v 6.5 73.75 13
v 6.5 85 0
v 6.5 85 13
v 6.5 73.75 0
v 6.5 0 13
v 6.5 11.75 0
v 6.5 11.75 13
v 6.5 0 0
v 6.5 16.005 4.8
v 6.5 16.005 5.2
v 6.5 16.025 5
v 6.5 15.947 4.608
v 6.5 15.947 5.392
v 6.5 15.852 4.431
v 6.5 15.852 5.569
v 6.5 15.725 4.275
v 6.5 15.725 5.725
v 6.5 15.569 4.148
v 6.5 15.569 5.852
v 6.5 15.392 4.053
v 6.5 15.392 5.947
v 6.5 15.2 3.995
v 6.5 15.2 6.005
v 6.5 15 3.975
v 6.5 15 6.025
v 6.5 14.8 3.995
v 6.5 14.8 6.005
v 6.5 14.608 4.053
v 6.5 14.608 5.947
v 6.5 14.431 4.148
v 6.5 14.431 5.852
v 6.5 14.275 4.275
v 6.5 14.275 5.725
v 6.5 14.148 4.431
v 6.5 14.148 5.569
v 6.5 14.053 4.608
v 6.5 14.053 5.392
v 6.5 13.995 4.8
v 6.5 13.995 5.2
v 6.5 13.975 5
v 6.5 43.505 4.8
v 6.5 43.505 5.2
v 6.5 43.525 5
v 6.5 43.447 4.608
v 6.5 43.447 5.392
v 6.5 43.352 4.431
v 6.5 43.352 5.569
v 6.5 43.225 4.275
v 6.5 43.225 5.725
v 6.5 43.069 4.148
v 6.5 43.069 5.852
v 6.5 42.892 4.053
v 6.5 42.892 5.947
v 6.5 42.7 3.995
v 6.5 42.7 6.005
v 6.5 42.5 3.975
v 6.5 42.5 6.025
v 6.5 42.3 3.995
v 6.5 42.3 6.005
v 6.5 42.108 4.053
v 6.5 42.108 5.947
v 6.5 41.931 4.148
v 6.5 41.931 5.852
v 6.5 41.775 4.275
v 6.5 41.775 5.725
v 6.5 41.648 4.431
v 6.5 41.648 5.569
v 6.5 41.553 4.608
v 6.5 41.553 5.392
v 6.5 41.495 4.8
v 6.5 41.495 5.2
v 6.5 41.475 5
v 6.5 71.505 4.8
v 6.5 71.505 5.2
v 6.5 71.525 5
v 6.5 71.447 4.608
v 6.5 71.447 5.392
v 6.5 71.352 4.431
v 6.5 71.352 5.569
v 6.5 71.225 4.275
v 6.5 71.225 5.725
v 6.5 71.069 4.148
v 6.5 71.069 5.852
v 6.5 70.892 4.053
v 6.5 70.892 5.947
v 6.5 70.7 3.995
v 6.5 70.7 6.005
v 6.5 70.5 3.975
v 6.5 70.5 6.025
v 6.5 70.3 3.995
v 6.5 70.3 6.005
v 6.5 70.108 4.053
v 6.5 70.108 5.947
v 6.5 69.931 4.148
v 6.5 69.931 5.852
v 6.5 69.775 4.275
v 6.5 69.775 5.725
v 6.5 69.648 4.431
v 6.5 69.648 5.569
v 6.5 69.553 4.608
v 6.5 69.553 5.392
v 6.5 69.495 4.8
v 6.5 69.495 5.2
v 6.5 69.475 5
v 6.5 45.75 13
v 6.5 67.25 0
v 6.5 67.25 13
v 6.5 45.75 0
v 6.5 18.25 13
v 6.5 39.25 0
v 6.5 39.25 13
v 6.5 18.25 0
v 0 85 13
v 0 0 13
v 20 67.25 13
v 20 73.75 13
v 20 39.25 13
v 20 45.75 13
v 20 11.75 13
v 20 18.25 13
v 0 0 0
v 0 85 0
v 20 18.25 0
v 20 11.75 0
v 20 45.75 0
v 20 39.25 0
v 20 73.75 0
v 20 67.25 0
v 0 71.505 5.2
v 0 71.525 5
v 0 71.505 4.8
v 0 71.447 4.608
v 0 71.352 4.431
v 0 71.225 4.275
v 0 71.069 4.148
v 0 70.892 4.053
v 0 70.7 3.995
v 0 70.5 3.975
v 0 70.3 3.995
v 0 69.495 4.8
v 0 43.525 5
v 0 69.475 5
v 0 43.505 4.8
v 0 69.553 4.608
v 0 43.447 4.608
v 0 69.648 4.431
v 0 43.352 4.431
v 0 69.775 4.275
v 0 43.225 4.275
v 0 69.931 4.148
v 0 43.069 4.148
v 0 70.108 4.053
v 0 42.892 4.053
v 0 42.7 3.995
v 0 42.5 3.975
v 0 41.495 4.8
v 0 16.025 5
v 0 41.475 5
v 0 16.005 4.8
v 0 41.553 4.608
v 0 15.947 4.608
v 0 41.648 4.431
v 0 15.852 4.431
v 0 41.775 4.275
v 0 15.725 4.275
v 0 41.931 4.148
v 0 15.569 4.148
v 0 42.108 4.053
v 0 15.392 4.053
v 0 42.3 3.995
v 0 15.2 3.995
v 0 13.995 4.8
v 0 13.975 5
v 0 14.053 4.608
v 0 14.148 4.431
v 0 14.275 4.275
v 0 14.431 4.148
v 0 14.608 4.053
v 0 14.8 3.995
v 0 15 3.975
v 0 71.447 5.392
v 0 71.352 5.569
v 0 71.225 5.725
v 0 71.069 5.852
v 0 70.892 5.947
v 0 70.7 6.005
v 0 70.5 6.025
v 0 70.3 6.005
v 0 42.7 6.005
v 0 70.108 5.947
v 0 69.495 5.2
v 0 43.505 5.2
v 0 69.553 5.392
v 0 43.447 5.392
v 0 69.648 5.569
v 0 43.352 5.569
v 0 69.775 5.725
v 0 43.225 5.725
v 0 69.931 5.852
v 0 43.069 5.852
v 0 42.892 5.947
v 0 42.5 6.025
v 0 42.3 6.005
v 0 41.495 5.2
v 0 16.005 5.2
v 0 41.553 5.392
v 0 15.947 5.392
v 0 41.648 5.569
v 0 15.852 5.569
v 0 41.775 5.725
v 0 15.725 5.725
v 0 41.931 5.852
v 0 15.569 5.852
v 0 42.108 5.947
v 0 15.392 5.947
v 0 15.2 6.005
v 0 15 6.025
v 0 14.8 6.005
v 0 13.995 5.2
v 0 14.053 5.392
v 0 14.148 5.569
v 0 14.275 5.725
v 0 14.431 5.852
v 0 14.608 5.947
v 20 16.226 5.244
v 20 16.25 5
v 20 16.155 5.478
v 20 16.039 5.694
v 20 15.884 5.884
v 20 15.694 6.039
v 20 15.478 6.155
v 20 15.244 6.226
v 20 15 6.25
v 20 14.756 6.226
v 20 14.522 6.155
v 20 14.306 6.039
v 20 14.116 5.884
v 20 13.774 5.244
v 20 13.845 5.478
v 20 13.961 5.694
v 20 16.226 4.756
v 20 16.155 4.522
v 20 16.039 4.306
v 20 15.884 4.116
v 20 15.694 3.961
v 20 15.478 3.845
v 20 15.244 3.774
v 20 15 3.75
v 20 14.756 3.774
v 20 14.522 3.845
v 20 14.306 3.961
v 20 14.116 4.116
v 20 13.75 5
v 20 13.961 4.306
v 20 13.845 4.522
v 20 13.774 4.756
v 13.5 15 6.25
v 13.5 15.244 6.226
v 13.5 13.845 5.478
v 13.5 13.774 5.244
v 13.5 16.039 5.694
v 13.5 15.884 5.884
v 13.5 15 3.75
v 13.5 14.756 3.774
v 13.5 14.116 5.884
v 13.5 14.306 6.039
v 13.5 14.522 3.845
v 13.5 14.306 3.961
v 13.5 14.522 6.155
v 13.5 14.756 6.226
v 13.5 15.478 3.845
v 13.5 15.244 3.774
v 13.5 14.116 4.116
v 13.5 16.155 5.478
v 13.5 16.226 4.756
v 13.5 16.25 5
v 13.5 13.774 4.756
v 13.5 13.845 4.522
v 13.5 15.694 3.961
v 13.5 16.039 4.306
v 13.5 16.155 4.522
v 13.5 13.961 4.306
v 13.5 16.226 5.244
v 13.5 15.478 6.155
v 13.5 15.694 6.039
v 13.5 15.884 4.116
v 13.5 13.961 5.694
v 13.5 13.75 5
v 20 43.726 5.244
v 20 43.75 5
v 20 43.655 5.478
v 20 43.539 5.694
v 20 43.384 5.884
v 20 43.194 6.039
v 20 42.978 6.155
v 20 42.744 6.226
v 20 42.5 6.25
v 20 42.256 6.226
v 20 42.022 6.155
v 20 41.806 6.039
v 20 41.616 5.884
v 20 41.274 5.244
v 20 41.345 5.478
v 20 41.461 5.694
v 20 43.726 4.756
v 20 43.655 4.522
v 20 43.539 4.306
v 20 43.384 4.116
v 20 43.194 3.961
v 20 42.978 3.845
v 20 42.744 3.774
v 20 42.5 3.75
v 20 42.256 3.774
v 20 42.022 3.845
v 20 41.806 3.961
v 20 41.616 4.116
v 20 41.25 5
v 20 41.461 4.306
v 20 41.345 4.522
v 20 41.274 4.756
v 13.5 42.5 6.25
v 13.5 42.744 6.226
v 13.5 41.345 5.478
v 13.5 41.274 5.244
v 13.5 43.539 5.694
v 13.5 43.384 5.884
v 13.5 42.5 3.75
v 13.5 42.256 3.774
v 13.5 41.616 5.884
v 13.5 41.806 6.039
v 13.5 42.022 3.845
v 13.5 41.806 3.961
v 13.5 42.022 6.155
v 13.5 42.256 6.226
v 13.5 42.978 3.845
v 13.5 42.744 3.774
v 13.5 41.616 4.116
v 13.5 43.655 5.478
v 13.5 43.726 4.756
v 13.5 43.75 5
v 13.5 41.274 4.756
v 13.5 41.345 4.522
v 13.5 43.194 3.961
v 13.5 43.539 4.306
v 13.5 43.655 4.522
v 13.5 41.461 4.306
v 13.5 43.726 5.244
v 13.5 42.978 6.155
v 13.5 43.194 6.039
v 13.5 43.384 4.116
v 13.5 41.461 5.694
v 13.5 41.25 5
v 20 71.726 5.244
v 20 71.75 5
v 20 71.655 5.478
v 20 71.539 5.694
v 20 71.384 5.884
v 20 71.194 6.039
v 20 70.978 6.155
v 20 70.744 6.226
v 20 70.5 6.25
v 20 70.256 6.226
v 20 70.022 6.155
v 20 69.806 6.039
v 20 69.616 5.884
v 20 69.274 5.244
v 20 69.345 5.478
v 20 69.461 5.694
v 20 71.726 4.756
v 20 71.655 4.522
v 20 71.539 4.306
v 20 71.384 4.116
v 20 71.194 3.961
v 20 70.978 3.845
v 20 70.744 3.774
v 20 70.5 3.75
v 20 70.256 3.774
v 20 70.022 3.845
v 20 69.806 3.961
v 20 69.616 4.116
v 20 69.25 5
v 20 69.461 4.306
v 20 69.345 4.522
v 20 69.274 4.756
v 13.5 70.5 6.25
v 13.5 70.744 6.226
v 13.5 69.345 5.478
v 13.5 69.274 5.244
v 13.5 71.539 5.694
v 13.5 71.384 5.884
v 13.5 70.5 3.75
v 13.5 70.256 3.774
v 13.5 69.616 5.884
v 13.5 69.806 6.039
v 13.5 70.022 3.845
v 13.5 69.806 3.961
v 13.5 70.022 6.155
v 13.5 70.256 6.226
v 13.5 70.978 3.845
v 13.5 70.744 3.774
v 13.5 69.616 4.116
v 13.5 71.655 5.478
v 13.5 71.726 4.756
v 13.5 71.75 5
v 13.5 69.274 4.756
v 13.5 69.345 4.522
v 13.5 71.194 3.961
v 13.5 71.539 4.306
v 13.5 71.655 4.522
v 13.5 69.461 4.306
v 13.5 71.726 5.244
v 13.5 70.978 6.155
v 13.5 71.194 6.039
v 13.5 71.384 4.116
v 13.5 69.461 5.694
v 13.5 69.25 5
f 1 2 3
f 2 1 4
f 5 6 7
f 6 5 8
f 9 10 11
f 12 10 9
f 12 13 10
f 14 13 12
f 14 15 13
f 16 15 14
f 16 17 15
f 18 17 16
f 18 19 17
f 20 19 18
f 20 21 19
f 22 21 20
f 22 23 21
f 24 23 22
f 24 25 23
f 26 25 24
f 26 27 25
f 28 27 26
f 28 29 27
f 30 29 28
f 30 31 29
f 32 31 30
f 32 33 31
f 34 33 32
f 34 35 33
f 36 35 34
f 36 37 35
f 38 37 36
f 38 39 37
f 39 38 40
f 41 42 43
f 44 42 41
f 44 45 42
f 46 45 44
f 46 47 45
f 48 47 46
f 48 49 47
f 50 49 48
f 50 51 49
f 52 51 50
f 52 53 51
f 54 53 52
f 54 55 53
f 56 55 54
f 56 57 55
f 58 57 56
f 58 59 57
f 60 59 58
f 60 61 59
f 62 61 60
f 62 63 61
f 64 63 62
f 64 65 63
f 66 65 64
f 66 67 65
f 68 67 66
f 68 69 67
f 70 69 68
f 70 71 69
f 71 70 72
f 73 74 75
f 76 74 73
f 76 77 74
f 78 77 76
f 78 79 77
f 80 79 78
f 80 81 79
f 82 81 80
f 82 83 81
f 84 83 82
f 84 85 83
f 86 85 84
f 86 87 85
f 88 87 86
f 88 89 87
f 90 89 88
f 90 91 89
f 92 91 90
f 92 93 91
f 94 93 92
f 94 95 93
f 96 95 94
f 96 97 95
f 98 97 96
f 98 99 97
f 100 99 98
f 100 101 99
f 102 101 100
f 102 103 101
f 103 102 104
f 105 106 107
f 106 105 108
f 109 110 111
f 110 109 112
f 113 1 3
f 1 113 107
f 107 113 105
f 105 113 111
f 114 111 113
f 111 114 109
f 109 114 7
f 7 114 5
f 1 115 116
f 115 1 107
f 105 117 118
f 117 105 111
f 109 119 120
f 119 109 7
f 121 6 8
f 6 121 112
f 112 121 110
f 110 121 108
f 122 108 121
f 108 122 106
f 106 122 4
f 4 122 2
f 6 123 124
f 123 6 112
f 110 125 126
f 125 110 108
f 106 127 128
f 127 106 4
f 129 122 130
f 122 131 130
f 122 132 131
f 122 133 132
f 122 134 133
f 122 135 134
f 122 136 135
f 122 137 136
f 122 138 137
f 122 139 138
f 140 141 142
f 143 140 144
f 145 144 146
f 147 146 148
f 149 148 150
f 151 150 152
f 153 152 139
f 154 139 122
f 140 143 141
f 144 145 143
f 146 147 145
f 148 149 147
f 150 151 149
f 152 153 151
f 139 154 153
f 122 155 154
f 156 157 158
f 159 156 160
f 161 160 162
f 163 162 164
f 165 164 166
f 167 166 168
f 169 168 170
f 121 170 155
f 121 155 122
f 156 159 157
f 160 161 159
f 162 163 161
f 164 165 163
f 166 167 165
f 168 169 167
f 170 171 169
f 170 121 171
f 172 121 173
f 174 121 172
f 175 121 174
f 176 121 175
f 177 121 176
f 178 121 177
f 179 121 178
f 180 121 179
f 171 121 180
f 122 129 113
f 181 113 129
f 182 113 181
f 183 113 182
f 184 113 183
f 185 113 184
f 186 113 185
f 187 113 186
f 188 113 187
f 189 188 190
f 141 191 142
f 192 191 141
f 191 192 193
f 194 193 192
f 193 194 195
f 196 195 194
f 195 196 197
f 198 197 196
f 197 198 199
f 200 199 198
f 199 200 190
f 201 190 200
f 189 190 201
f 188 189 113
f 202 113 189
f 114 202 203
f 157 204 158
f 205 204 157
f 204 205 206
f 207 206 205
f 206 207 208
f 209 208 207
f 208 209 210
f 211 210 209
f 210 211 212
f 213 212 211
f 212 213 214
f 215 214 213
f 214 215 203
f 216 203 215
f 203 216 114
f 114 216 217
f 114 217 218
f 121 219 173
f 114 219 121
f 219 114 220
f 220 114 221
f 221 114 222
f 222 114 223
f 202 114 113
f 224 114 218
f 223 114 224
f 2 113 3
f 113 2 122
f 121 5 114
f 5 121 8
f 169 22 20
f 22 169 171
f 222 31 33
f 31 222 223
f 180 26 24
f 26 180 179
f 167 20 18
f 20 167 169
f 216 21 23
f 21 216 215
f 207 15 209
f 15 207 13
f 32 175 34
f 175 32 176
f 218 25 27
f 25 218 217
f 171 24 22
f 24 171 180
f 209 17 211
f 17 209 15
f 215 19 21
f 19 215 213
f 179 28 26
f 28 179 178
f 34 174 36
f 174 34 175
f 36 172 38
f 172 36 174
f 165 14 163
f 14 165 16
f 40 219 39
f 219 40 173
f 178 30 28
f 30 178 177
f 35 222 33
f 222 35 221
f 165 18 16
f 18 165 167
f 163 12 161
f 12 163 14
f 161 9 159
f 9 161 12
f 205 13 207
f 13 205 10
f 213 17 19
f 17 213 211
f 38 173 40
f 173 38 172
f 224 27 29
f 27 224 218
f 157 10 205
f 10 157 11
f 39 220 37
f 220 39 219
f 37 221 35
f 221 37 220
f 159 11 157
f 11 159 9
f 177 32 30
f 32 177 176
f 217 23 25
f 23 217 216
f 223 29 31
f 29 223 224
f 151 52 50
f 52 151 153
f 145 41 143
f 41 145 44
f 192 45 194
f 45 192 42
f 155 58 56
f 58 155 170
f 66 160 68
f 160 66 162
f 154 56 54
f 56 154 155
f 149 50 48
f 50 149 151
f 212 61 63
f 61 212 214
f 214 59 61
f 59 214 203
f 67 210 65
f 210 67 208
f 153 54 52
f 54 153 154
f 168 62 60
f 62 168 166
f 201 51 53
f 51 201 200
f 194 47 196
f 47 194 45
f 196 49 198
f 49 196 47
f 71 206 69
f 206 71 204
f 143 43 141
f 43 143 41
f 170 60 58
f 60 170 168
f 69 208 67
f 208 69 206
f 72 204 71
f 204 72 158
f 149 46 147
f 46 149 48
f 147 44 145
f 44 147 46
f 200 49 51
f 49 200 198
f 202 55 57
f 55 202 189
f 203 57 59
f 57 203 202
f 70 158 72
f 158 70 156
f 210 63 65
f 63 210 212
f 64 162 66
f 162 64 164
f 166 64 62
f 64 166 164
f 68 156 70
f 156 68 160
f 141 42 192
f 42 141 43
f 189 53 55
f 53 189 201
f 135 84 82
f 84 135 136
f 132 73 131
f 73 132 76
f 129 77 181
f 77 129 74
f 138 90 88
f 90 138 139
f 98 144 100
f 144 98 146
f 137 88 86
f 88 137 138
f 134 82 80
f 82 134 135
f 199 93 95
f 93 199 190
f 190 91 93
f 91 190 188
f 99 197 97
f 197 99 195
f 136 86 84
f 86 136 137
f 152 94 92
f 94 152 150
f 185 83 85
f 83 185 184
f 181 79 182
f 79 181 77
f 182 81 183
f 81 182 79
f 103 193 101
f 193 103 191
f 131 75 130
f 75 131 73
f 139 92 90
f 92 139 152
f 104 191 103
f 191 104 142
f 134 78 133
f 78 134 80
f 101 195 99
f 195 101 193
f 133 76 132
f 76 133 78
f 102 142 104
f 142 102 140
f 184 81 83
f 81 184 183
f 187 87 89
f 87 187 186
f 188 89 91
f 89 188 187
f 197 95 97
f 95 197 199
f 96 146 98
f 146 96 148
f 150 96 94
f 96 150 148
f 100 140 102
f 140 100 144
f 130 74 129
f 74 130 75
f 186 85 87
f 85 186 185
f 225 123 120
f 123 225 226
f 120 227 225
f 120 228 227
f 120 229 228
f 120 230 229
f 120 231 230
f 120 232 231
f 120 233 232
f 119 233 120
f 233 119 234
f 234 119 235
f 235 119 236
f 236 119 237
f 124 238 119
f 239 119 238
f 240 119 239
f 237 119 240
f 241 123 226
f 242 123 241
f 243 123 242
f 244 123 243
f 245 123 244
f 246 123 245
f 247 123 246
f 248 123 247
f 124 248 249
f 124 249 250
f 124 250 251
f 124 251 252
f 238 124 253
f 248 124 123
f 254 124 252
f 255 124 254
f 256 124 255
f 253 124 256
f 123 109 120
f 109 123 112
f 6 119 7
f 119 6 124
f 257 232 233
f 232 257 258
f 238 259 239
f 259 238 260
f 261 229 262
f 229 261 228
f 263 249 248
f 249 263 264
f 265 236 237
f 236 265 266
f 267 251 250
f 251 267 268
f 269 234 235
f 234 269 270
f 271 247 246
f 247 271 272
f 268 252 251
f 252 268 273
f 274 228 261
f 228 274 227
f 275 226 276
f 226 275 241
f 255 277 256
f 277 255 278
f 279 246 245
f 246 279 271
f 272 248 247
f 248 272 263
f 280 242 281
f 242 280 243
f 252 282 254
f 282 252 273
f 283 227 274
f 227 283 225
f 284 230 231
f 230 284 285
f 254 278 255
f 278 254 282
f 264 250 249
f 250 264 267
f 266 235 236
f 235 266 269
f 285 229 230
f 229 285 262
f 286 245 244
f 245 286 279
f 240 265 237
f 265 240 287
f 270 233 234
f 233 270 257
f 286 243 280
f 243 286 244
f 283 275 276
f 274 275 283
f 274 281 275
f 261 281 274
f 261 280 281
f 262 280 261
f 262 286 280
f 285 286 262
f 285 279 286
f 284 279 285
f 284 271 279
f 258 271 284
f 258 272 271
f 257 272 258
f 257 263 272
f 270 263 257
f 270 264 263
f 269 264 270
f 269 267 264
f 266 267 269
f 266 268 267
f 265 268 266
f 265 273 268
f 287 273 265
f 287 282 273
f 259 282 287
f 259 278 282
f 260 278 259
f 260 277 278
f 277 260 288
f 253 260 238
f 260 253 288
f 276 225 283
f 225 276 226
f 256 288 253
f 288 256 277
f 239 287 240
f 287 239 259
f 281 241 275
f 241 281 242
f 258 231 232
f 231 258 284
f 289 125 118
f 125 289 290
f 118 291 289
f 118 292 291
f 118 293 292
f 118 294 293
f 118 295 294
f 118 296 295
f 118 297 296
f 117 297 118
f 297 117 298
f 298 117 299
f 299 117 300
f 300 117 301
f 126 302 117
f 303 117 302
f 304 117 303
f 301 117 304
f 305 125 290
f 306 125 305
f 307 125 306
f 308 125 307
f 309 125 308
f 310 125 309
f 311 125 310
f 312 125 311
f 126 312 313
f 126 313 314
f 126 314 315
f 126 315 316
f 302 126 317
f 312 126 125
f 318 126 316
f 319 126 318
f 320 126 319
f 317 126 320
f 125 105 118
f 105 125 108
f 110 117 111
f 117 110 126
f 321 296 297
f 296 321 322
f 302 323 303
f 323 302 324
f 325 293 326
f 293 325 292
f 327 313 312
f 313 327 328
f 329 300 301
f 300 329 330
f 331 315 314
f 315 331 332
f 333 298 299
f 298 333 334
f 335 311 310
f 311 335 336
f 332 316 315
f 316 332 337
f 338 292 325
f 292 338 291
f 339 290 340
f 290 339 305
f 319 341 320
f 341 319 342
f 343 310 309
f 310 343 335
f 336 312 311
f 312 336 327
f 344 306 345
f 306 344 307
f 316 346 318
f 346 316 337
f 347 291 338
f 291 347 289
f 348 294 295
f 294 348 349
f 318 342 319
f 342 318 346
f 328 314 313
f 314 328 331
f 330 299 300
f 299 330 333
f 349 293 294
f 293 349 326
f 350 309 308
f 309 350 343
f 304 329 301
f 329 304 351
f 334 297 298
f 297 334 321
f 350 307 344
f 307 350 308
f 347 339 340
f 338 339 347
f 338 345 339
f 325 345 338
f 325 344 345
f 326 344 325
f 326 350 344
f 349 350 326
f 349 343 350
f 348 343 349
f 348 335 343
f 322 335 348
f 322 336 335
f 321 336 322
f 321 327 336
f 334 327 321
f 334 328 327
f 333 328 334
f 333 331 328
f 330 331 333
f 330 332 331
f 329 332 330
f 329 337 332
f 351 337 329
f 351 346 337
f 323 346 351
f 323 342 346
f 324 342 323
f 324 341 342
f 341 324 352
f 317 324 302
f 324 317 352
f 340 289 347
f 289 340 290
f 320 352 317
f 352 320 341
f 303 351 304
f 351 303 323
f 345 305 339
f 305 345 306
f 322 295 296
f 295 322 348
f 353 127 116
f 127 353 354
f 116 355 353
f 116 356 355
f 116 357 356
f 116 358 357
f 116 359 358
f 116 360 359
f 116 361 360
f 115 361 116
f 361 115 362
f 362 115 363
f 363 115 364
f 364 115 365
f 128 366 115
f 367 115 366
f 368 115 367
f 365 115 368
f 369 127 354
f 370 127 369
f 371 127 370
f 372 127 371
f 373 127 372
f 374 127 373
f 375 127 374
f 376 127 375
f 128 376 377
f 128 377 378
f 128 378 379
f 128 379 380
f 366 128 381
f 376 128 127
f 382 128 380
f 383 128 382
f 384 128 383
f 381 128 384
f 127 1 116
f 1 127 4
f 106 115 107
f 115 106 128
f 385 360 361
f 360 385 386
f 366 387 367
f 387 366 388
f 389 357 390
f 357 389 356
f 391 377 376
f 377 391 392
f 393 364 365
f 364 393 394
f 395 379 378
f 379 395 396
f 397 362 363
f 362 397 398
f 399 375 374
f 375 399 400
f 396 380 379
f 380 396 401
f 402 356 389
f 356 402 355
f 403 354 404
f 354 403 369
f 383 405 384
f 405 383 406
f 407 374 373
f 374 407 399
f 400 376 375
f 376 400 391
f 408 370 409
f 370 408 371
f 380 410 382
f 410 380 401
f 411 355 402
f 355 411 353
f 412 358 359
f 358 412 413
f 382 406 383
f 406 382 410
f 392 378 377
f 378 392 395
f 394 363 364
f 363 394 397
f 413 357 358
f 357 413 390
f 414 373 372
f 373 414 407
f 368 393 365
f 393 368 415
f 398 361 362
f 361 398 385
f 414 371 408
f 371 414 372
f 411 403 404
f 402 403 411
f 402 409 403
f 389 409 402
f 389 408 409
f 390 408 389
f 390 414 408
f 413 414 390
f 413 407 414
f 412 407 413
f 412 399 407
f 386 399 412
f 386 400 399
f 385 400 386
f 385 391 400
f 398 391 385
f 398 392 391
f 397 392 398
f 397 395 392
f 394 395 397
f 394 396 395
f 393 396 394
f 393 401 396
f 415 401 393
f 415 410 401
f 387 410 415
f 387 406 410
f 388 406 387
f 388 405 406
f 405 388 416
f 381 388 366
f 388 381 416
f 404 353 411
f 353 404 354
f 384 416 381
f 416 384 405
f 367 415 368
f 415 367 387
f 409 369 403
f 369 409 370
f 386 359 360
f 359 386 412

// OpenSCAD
//EuroCardBaseBPadapt1

$fn = 32;

ECBeamHeight = 13.0;
ECBeamWidth = 6.5;
ECBeamLength = 85.0;
ECBeamHalfWidth = ECBeamWidth / 2;
adaptLen = 20.0 - ECBeamWidth;

mountHoleDist = 13.0;
mountHole1Offset = 15.0;
mountHole2Offset = mountHole1Offset + 25.0;
mountHole3Offset = mountHole1Offset + 50.0;
mountHole = 2.5;

bpHole1Offset = 15.0;
bpHole2Offset = 42.5;
bpHole3Offset = 70.5;
bpHoleZOffset = 5.0;
bpHole = 2.05;

module beam() {
    cube([ECBeamWidth, ECBeamLength, ECBeamHeight]);
}

module mountHoleSet() {
    translate([0, -mountHoleDist / 2, 0]) cylinder(d = mountHole, h = ECBeamHeight + 0.02);
    translate([0, mountHoleDist / 2, 0]) cylinder(d = mountHole, h = ECBeamHeight + 0.02);
}

module adaptBeam() {
    difference() {
        cube([adaptLen, ECBeamWidth, ECBeamHeight]);
        translate([adaptLen - ECBeamWidth, ECBeamHalfWidth, bpHoleZOffset]) rotate([0, 90, 0])
            cylinder(d = mountHole, h = ECBeamWidth + 0.02);
    }
}

difference() {
    beam();
    // back plane hole 1
    translate([-0.01, bpHole1Offset, bpHoleZOffset]) rotate([0, 90, 0]) 
        cylinder(d = bpHole, h = ECBeamWidth + 0.02);
    translate([-0.01, bpHole2Offset, bpHoleZOffset]) rotate([0, 90, 0]) 
        cylinder(d = bpHole, h = ECBeamWidth + 0.02);
    translate([-0.01, bpHole3Offset, bpHoleZOffset]) rotate([0, 90, 0]) 
        cylinder(d = bpHole, h = ECBeamWidth + 0.02); 
}
//20.5
translate([ECBeamWidth, 15.0 - ECBeamHalfWidth, 0]) adaptBeam();
translate([ECBeamWidth, 42.5 - ECBeamHalfWidth, 0]) adaptBeam();
translate([ECBeamWidth, 70.5 - ECBeamHalfWidth, 0]) adaptBeam(); 
